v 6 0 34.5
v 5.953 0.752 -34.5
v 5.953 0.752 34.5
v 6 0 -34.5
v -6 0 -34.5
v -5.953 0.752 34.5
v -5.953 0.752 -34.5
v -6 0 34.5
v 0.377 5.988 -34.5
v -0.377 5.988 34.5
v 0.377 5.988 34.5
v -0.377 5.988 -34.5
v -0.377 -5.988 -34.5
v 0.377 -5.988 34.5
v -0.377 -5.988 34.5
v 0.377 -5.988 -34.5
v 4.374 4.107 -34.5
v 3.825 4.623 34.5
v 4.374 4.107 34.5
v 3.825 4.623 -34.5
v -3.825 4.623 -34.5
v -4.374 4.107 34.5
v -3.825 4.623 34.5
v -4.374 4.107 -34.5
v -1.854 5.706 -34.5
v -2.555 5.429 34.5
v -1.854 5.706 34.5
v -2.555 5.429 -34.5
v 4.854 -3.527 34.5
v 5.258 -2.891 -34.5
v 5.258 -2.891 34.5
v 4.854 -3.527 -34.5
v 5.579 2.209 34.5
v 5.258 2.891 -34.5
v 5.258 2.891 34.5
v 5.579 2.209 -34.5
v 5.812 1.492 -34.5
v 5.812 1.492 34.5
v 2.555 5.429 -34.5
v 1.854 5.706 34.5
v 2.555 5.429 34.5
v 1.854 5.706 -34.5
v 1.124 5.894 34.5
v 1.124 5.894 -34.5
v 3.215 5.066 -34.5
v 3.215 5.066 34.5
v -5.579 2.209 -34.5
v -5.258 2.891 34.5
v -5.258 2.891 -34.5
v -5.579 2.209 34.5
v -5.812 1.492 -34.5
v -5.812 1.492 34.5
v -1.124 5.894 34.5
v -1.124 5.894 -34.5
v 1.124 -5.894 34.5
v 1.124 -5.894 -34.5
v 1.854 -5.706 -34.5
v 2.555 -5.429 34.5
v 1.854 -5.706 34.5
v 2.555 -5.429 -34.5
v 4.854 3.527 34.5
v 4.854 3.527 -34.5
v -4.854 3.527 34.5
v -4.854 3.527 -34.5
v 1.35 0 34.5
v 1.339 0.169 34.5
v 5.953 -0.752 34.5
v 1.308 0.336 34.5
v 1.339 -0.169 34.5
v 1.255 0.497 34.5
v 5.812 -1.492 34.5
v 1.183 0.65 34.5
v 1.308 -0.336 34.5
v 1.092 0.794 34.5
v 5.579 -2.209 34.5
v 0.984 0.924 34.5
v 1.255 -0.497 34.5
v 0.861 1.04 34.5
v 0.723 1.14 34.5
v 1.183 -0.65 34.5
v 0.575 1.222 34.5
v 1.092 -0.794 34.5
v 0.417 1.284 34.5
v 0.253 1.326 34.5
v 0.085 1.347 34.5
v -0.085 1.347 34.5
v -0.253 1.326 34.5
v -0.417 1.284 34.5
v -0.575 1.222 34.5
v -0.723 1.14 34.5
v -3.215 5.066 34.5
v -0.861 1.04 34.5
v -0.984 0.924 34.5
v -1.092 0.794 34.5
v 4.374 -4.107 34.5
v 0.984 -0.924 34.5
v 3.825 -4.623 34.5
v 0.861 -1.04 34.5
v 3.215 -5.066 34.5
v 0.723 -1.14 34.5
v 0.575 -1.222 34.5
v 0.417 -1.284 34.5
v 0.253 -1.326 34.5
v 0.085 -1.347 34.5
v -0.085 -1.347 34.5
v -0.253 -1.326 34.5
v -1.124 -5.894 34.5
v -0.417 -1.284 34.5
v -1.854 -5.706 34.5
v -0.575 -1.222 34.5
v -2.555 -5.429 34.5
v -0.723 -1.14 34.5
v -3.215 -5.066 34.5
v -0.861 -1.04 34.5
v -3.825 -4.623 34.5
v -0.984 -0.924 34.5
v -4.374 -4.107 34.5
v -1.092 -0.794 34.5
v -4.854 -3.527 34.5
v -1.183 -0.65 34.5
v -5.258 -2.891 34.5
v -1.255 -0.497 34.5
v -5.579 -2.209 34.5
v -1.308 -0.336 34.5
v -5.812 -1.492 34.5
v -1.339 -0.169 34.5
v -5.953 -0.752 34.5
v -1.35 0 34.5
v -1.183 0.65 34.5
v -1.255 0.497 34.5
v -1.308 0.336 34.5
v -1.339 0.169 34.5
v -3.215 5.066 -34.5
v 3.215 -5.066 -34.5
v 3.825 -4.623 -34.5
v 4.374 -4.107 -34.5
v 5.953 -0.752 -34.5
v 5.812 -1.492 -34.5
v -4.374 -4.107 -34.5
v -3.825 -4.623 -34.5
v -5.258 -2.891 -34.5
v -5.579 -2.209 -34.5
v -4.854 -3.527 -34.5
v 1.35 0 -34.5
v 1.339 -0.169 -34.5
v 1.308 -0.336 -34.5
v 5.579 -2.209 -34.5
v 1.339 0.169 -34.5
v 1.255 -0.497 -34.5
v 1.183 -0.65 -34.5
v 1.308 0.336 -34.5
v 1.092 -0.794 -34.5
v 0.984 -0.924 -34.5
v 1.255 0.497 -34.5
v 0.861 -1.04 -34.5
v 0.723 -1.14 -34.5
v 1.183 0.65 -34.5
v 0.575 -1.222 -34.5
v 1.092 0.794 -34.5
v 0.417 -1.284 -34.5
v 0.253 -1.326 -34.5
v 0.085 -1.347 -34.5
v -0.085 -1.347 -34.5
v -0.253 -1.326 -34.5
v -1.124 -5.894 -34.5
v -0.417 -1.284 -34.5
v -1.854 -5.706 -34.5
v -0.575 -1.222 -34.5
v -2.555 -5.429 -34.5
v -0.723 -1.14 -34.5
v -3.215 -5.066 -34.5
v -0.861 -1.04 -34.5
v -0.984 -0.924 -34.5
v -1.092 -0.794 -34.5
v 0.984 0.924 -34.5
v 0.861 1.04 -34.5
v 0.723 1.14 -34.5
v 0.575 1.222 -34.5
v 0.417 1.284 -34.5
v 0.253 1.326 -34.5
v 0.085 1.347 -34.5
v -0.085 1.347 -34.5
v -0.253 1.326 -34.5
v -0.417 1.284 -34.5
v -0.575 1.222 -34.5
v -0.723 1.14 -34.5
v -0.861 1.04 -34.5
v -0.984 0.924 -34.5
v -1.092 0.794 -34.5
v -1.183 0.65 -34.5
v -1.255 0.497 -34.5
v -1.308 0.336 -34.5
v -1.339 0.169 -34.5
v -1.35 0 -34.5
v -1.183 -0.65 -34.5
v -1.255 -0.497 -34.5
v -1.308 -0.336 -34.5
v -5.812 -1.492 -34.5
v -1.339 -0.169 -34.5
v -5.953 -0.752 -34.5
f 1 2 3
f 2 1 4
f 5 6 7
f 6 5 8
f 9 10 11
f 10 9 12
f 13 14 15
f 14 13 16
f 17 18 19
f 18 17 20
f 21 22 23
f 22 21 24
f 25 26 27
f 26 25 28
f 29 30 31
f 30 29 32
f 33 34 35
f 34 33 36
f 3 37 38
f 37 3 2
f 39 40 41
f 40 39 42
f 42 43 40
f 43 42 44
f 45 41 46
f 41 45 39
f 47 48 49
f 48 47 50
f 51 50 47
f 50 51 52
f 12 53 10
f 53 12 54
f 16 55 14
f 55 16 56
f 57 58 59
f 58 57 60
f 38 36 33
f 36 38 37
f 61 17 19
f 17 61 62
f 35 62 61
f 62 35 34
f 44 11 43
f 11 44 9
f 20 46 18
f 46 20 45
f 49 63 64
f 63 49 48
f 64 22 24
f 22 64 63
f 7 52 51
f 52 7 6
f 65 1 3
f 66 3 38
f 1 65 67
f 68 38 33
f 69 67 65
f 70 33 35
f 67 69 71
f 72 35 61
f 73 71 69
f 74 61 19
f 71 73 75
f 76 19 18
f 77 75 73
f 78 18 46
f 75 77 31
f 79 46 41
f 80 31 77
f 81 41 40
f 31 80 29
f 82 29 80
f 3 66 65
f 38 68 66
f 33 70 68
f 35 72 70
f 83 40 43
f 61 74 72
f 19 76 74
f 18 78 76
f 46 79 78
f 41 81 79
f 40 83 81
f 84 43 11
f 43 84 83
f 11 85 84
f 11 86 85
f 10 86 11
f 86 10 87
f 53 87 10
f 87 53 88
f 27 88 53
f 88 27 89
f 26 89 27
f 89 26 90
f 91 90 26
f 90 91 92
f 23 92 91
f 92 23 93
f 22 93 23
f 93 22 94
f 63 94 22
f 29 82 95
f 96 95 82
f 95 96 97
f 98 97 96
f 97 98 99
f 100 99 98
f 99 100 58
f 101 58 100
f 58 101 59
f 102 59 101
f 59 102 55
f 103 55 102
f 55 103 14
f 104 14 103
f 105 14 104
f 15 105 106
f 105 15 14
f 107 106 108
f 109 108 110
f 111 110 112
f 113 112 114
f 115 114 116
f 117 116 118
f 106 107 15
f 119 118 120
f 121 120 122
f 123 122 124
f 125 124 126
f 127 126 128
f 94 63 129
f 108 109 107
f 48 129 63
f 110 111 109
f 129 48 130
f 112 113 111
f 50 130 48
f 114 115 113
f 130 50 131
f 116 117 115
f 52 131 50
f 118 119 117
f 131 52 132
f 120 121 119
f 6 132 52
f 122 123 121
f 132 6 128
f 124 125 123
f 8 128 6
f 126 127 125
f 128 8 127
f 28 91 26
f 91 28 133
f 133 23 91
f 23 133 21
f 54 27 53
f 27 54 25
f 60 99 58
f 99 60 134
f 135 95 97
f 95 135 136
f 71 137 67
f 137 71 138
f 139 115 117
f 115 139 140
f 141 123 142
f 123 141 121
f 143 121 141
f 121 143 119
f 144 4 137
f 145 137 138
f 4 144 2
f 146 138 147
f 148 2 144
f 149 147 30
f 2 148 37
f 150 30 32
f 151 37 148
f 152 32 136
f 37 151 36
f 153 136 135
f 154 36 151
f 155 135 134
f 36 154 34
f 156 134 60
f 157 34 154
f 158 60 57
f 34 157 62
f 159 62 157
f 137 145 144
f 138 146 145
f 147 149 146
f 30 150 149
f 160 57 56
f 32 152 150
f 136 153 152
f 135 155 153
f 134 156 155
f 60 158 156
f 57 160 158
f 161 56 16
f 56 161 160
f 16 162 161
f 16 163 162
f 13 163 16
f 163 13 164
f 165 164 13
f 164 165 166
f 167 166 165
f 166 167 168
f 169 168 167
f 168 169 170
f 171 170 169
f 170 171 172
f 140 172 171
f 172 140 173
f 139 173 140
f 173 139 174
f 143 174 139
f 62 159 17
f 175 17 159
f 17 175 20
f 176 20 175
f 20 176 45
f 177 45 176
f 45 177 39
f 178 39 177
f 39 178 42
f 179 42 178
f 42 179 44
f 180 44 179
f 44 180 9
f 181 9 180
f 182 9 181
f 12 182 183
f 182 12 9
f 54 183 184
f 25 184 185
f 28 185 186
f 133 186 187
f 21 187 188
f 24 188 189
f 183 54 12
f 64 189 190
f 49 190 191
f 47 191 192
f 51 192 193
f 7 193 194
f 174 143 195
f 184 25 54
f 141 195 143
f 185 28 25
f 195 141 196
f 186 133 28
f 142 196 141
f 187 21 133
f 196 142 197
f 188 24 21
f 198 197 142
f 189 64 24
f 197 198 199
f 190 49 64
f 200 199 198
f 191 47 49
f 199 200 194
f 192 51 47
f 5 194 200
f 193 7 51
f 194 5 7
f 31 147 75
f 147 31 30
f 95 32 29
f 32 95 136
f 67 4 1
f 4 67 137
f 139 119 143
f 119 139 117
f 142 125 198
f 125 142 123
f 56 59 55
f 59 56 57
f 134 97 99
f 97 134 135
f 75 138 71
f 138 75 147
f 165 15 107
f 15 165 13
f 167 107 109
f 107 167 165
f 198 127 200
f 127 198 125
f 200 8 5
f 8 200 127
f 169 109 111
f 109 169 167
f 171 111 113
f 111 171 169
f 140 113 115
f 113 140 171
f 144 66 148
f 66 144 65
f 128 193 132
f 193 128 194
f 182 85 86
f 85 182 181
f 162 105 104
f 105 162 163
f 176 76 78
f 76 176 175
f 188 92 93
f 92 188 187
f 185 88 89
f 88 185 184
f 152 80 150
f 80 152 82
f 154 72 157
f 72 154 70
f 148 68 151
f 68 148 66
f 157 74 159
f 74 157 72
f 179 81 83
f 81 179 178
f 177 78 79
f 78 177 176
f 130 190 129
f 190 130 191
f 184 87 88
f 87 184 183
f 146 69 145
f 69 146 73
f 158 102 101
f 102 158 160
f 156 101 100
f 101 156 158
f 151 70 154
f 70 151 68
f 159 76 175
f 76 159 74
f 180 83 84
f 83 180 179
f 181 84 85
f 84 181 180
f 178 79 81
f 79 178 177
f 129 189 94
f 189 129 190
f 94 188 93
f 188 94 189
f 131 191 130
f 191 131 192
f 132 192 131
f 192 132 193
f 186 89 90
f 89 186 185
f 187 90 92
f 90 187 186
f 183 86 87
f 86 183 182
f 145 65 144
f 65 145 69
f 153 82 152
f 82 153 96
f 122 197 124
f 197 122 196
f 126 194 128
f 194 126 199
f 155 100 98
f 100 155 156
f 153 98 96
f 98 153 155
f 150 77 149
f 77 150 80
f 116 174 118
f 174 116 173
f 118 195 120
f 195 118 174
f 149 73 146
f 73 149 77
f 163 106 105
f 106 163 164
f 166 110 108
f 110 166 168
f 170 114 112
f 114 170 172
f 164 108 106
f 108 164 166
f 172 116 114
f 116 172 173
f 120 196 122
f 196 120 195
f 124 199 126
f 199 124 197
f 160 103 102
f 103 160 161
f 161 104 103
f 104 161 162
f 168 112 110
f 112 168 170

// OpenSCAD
$fn = 50;


difference() {
	union() {
		translate(v = [0, 0, -34.5000000000]) {
			cylinder(h = 69, r = 6.0000000000);
		}
	}
	union() {
		translate(v = [0, 0, -100.0000000000]) {
			cylinder(h = 200, r = 1.3500000000);
		}
	}
}
